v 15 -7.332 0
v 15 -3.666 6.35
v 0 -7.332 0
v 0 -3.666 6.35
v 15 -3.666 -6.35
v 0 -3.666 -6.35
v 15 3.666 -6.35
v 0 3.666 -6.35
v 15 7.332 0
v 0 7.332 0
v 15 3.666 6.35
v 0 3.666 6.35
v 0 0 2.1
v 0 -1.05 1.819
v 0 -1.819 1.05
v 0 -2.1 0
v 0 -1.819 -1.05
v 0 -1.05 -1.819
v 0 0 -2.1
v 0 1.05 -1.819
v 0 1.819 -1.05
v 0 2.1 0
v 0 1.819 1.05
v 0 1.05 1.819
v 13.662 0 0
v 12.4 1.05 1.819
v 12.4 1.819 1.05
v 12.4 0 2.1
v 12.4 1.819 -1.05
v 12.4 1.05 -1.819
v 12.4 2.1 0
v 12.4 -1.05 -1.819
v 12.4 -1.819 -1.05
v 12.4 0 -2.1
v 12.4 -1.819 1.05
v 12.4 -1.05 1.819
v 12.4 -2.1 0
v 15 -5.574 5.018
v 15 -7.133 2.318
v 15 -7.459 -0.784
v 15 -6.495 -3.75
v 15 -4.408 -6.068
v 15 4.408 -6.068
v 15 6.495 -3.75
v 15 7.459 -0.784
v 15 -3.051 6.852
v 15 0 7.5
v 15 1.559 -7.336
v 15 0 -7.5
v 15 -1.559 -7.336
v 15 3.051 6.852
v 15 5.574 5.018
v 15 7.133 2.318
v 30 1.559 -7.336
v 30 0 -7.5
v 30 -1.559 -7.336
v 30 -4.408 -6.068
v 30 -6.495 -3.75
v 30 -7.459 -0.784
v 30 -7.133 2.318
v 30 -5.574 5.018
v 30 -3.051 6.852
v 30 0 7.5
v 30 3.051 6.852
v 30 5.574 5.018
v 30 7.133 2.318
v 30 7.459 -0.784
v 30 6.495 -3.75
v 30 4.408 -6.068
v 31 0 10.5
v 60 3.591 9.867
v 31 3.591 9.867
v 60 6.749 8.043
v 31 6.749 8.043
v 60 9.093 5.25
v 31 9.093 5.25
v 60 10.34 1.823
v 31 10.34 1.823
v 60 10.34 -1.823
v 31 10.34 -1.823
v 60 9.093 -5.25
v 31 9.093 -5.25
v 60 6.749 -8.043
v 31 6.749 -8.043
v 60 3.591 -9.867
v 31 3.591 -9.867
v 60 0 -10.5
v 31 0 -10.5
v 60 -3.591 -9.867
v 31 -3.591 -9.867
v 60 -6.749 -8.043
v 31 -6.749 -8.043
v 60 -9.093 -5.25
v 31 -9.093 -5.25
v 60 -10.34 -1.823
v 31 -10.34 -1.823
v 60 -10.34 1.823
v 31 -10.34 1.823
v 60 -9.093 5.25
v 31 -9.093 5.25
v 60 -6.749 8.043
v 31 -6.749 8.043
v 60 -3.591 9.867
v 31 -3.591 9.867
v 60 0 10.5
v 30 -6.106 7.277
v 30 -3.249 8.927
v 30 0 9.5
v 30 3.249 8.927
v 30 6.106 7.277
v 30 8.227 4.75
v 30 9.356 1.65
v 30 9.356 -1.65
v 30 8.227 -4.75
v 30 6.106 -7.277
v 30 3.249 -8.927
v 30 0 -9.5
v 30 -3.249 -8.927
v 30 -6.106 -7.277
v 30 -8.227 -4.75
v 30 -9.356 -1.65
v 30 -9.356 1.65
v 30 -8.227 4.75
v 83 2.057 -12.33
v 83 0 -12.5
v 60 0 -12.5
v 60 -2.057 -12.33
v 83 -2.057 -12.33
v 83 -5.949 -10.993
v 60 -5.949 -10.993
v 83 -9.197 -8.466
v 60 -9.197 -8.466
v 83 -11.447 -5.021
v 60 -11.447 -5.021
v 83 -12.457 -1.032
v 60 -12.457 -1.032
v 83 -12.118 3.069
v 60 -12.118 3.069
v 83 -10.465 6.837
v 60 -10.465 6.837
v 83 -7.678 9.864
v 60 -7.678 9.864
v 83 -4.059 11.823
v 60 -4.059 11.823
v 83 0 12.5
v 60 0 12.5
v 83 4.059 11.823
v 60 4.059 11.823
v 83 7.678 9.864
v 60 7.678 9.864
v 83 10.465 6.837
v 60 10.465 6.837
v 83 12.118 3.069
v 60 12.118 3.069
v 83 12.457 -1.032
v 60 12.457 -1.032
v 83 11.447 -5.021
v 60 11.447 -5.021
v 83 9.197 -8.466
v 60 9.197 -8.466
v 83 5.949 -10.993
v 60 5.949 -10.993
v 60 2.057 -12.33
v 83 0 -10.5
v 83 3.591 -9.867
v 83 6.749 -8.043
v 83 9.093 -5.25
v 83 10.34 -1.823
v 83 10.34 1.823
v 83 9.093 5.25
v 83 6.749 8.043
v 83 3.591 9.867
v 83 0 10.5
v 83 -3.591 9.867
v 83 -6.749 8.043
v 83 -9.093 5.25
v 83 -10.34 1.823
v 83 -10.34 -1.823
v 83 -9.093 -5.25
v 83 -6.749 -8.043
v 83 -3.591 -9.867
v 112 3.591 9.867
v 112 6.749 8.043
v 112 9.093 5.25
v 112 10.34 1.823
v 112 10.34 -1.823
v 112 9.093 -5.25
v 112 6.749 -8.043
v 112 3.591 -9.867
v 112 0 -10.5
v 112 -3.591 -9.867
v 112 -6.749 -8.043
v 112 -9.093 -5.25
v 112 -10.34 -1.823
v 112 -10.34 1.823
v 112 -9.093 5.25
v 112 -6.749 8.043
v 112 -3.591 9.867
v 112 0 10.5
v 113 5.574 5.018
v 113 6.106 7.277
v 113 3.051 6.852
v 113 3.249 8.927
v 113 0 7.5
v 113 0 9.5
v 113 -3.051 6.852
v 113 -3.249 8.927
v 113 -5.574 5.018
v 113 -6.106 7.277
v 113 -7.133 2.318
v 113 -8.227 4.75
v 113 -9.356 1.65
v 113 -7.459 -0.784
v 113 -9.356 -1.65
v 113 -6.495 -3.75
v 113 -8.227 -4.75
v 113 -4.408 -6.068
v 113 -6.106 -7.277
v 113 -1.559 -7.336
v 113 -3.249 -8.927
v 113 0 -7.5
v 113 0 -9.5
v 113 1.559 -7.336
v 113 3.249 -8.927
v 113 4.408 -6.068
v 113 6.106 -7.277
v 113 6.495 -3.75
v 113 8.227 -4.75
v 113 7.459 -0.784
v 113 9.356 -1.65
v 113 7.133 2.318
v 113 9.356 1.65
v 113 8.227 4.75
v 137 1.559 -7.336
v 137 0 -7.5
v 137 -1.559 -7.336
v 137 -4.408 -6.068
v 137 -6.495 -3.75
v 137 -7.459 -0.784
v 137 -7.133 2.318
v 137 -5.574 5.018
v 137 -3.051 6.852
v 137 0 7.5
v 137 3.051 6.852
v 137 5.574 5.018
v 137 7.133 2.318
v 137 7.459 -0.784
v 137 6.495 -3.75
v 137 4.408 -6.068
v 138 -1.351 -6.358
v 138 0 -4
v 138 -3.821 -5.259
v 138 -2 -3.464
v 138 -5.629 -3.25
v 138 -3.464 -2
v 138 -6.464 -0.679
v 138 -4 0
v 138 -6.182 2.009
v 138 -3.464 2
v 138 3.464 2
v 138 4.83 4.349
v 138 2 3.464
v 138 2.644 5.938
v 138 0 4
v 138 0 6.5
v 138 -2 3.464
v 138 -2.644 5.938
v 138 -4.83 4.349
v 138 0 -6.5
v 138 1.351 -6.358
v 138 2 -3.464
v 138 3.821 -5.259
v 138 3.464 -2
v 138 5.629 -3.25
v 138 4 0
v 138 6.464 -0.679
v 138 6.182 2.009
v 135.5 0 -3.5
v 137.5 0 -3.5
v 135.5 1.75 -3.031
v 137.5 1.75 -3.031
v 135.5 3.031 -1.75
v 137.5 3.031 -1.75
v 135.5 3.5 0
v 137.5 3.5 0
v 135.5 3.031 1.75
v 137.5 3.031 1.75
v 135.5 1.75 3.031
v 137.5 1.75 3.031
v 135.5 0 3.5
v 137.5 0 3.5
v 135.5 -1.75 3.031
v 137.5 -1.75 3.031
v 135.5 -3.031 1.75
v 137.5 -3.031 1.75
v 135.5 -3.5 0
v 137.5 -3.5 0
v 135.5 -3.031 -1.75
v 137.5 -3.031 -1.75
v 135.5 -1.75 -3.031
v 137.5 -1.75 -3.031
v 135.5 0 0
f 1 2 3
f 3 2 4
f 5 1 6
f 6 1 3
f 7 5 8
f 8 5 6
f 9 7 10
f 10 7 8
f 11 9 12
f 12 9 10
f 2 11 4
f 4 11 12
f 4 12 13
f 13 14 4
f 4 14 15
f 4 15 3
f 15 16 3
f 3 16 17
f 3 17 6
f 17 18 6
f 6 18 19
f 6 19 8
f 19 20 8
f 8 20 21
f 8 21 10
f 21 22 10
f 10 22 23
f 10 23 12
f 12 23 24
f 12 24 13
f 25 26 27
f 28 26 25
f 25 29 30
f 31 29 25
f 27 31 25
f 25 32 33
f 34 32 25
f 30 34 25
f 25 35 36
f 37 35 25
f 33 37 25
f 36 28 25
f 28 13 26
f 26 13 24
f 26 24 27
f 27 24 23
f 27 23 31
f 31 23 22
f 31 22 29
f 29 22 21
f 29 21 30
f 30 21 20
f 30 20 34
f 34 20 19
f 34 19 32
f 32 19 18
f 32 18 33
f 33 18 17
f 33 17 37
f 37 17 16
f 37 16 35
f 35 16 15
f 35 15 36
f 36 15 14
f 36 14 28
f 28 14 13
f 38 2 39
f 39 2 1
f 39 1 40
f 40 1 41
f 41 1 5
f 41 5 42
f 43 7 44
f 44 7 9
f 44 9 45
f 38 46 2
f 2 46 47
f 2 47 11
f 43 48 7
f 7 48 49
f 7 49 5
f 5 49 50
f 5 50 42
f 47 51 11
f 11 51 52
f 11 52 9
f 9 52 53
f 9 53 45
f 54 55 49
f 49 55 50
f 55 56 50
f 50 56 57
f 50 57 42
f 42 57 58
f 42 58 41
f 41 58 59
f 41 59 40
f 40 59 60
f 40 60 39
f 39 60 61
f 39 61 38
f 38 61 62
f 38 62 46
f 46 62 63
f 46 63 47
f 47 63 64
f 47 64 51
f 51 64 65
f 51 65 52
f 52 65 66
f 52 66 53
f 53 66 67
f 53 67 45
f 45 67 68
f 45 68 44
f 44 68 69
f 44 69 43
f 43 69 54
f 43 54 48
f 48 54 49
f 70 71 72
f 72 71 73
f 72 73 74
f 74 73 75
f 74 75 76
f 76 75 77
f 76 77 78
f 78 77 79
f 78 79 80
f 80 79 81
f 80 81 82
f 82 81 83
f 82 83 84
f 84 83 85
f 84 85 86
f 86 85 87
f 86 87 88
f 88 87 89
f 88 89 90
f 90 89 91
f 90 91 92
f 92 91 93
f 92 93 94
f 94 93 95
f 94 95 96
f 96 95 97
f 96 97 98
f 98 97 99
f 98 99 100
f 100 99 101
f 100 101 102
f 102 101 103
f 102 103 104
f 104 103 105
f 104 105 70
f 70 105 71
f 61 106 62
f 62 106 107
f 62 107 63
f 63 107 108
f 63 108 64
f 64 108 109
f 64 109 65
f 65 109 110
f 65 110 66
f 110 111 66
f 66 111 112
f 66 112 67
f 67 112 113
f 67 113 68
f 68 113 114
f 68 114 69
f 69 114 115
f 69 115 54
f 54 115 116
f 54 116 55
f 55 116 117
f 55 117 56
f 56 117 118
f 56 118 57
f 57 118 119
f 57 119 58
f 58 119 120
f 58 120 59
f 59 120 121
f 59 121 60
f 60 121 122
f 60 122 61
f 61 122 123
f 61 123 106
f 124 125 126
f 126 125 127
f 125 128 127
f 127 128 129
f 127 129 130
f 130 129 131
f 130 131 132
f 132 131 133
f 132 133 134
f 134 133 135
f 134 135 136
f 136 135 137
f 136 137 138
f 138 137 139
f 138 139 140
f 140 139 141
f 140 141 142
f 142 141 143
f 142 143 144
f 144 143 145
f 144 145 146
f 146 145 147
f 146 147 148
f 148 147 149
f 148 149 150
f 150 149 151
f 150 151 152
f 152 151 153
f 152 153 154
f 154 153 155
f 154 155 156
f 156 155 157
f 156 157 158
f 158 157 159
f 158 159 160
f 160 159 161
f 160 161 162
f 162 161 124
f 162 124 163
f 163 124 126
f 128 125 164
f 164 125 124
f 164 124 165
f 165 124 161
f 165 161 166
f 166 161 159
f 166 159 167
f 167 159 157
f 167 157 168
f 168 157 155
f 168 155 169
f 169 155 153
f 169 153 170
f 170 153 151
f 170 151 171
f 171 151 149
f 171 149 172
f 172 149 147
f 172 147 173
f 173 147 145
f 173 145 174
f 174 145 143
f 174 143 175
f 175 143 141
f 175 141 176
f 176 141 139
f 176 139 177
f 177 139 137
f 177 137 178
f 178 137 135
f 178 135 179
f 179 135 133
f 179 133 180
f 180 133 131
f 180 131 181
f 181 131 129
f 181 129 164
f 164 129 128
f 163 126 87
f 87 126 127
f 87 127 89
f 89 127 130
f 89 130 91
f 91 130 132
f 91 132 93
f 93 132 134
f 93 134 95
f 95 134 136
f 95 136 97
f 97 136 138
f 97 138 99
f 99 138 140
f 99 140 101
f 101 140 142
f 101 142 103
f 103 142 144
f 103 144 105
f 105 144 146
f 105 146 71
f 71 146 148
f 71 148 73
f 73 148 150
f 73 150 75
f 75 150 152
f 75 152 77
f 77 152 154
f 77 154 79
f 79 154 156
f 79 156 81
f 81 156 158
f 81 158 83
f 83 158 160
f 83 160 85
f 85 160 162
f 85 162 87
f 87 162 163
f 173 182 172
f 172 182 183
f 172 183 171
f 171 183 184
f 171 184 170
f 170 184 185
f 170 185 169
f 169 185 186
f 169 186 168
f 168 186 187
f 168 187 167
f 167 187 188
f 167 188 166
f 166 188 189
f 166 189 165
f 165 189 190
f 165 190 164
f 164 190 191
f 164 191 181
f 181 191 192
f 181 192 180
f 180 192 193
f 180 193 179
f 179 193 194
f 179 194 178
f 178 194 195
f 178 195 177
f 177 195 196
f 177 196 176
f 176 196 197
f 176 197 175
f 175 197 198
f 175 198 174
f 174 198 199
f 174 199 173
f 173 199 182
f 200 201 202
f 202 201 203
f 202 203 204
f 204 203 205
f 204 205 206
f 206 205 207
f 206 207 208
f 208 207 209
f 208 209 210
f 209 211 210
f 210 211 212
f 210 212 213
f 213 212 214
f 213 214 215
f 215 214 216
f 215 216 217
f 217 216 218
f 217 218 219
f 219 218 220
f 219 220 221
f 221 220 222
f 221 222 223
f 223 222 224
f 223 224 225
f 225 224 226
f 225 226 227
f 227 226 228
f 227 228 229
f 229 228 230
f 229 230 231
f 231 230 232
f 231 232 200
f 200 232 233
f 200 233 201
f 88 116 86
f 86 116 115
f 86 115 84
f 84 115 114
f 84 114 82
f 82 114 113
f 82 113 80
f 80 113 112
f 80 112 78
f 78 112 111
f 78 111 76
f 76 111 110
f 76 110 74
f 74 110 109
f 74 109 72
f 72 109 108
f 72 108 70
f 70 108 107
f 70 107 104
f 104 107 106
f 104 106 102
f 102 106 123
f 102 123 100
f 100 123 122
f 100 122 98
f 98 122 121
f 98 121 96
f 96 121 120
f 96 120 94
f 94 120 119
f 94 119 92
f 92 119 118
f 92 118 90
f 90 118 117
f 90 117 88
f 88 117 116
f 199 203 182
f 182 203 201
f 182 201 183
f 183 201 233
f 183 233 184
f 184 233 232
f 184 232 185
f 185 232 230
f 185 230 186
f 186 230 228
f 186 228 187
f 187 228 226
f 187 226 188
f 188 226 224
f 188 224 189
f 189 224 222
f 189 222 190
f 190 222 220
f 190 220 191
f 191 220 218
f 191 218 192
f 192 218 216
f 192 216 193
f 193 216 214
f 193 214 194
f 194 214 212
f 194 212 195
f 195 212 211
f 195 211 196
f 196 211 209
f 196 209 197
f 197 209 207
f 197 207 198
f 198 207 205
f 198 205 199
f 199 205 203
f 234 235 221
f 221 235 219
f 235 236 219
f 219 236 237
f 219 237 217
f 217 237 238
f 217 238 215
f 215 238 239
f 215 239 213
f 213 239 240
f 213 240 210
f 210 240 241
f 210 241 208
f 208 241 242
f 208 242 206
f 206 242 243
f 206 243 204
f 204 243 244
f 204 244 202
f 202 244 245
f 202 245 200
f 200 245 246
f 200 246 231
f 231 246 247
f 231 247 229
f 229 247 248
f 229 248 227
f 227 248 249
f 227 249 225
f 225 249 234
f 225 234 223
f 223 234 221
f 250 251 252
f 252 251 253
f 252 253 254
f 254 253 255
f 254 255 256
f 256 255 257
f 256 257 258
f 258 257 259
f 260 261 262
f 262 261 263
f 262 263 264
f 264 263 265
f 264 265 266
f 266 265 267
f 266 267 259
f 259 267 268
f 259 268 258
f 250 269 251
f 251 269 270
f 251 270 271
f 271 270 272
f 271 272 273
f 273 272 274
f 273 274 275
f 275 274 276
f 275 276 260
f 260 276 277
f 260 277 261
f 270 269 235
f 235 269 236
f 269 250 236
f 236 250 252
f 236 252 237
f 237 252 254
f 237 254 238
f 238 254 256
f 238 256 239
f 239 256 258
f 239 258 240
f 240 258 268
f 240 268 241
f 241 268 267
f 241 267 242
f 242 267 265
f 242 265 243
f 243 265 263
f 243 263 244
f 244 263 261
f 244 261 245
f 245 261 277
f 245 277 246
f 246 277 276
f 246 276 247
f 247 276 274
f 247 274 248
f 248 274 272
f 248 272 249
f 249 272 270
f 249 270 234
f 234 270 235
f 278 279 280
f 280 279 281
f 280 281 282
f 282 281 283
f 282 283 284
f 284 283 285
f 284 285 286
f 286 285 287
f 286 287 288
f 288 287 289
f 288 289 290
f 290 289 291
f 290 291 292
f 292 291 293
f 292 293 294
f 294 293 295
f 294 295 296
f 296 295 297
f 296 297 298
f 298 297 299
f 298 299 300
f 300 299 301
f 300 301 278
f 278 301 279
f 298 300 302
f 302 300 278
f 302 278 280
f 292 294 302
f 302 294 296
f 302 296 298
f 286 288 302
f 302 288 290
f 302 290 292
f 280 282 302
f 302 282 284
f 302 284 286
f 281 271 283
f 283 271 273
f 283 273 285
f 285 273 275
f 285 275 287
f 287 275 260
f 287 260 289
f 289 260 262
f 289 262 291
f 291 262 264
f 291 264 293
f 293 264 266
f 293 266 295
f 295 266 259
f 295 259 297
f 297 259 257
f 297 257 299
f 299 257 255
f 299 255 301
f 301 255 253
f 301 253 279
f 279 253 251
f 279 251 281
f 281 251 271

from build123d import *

# Parameters (mm, degrees)
EXTRUDE_1_DEPTH     = 15
M5X0_8_1_D          = 4.2
M5X0_8_1_DEPTH      = 12.4
M5X0_8_1_TIP        = 1.2618073
SKETCH_5_R          = 7.5
EXTRUDE_2_DEPTH     = 15
SKETCH_6_R          = 10.5
EXTRUDE_3_DEPTH     = 30
SKETCH_7_R          = 12.5
EXTRUDE_4_DEPTH     = 23
SKETCH_8_R          = 10.5
EXTRUDE_5_DEPTH     = 30
CHAMFER_1_SIZE      = 1
CHAMFER_2_SIZE      = 1
SKETCH_9_R          = 7.5
EXTRUDE_6_DEPTH     = 25
CHAMFER_3_SIZE      = 1
SKETCH_10_R         = 3.5
CUT_EXTRUDE_1_DEPTH = 2.5
CHAMFER_4_SIZE      = 0.5


with BuildPart() as part:
    # 草图1 → 凸台-拉伸1 (new body)
    with BuildSketch(Plane(origin=(0, 0, 0), x_dir=(0, 0, -1), z_dir=(1, 0, 0))):
        Polygon((0, -7.332348419), (6.35, -3.666174209), (6.35, 3.666174209), (0, 7.332348419), (-6.35, 3.666174209), (-6.35, -3.666174209), align=None)
    extrude(amount=EXTRUDE_1_DEPTH)

    # M5x0.8 螺纹孔1
    with Locations(Plane.ZY):
        with Locations((0, 0)):
            Hole(M5X0_8_1_D / 2, depth=M5X0_8_1_DEPTH)
            with Locations((0, 0, -(M5X0_8_1_DEPTH + M5X0_8_1_TIP / 2))):  # 118° drill point
                Cone(0, M5X0_8_1_D / 2, M5X0_8_1_TIP, mode=Mode.SUBTRACT)

    # 草图5 → 凸台-拉伸2 (add)
    with BuildSketch(Plane(origin=(15, 0, 0), x_dir=(0, 0, -1), z_dir=(1, 0, 0))):
        Circle(SKETCH_5_R)
    extrude(amount=EXTRUDE_2_DEPTH)

    # 草图6 → 凸台-拉伸3 (add)
    with BuildSketch(Plane(origin=(30, 0, 0), x_dir=(0, 0, -1), z_dir=(1, 0, 0))):
        Circle(SKETCH_6_R)
    extrude(amount=EXTRUDE_3_DEPTH)

    # 草图7 → 凸台-拉伸4 (add)
    with BuildSketch(Plane(origin=(60, 0, 0), x_dir=(0, 0, -1), z_dir=(1, 0, 0))):
        Circle(SKETCH_7_R)
    extrude(amount=EXTRUDE_4_DEPTH)

    # 草图8 → 凸台-拉伸5 (add)
    with BuildSketch(Plane(origin=(83, 0, 0), x_dir=(0, 0, -1), z_dir=(1, 0, 0))):
        Circle(SKETCH_8_R)
    extrude(amount=EXTRUDE_5_DEPTH)

    # 倒角1
    chamfer_1_edges = [part.edges().sort_by_distance(p)[0] for p in [
        (30, 0, 10.5),
    ]]
    chamfer(chamfer_1_edges, length=CHAMFER_1_SIZE)

    # 倒角2
    chamfer_2_edges = [part.edges().sort_by_distance(p)[0] for p in [
        (113, 0, 10.5),
    ]]
    chamfer(chamfer_2_edges, length=CHAMFER_2_SIZE)

    # 草图9 → 凸台-拉伸6 (add)
    with BuildSketch(Plane(origin=(113, 0, 0), x_dir=(0, 0, -1), z_dir=(1, 0, 0))):
        Circle(SKETCH_9_R)
    extrude(amount=EXTRUDE_6_DEPTH)

    # 倒角3
    chamfer_3_edges = [part.edges().sort_by_distance(p)[0] for p in [
        (138, 0, 7.5),
    ]]
    chamfer(chamfer_3_edges, length=CHAMFER_3_SIZE)

    # 草图10 → 切除-拉伸1 (cut)
    with BuildSketch(Plane(origin=(138, 0, 0), x_dir=(0, 0, -1), z_dir=(1, 0, 0))):
        Circle(SKETCH_10_R)
    extrude(amount=-CUT_EXTRUDE_1_DEPTH, mode=Mode.SUBTRACT)

    # 倒角4
    chamfer_4_edges = [part.edges().sort_by_distance(p)[0] for p in [
        (138, 0, 3.5),
    ]]
    chamfer(chamfer_4_edges, length=CHAMFER_4_SIZE)


solid = part.part
